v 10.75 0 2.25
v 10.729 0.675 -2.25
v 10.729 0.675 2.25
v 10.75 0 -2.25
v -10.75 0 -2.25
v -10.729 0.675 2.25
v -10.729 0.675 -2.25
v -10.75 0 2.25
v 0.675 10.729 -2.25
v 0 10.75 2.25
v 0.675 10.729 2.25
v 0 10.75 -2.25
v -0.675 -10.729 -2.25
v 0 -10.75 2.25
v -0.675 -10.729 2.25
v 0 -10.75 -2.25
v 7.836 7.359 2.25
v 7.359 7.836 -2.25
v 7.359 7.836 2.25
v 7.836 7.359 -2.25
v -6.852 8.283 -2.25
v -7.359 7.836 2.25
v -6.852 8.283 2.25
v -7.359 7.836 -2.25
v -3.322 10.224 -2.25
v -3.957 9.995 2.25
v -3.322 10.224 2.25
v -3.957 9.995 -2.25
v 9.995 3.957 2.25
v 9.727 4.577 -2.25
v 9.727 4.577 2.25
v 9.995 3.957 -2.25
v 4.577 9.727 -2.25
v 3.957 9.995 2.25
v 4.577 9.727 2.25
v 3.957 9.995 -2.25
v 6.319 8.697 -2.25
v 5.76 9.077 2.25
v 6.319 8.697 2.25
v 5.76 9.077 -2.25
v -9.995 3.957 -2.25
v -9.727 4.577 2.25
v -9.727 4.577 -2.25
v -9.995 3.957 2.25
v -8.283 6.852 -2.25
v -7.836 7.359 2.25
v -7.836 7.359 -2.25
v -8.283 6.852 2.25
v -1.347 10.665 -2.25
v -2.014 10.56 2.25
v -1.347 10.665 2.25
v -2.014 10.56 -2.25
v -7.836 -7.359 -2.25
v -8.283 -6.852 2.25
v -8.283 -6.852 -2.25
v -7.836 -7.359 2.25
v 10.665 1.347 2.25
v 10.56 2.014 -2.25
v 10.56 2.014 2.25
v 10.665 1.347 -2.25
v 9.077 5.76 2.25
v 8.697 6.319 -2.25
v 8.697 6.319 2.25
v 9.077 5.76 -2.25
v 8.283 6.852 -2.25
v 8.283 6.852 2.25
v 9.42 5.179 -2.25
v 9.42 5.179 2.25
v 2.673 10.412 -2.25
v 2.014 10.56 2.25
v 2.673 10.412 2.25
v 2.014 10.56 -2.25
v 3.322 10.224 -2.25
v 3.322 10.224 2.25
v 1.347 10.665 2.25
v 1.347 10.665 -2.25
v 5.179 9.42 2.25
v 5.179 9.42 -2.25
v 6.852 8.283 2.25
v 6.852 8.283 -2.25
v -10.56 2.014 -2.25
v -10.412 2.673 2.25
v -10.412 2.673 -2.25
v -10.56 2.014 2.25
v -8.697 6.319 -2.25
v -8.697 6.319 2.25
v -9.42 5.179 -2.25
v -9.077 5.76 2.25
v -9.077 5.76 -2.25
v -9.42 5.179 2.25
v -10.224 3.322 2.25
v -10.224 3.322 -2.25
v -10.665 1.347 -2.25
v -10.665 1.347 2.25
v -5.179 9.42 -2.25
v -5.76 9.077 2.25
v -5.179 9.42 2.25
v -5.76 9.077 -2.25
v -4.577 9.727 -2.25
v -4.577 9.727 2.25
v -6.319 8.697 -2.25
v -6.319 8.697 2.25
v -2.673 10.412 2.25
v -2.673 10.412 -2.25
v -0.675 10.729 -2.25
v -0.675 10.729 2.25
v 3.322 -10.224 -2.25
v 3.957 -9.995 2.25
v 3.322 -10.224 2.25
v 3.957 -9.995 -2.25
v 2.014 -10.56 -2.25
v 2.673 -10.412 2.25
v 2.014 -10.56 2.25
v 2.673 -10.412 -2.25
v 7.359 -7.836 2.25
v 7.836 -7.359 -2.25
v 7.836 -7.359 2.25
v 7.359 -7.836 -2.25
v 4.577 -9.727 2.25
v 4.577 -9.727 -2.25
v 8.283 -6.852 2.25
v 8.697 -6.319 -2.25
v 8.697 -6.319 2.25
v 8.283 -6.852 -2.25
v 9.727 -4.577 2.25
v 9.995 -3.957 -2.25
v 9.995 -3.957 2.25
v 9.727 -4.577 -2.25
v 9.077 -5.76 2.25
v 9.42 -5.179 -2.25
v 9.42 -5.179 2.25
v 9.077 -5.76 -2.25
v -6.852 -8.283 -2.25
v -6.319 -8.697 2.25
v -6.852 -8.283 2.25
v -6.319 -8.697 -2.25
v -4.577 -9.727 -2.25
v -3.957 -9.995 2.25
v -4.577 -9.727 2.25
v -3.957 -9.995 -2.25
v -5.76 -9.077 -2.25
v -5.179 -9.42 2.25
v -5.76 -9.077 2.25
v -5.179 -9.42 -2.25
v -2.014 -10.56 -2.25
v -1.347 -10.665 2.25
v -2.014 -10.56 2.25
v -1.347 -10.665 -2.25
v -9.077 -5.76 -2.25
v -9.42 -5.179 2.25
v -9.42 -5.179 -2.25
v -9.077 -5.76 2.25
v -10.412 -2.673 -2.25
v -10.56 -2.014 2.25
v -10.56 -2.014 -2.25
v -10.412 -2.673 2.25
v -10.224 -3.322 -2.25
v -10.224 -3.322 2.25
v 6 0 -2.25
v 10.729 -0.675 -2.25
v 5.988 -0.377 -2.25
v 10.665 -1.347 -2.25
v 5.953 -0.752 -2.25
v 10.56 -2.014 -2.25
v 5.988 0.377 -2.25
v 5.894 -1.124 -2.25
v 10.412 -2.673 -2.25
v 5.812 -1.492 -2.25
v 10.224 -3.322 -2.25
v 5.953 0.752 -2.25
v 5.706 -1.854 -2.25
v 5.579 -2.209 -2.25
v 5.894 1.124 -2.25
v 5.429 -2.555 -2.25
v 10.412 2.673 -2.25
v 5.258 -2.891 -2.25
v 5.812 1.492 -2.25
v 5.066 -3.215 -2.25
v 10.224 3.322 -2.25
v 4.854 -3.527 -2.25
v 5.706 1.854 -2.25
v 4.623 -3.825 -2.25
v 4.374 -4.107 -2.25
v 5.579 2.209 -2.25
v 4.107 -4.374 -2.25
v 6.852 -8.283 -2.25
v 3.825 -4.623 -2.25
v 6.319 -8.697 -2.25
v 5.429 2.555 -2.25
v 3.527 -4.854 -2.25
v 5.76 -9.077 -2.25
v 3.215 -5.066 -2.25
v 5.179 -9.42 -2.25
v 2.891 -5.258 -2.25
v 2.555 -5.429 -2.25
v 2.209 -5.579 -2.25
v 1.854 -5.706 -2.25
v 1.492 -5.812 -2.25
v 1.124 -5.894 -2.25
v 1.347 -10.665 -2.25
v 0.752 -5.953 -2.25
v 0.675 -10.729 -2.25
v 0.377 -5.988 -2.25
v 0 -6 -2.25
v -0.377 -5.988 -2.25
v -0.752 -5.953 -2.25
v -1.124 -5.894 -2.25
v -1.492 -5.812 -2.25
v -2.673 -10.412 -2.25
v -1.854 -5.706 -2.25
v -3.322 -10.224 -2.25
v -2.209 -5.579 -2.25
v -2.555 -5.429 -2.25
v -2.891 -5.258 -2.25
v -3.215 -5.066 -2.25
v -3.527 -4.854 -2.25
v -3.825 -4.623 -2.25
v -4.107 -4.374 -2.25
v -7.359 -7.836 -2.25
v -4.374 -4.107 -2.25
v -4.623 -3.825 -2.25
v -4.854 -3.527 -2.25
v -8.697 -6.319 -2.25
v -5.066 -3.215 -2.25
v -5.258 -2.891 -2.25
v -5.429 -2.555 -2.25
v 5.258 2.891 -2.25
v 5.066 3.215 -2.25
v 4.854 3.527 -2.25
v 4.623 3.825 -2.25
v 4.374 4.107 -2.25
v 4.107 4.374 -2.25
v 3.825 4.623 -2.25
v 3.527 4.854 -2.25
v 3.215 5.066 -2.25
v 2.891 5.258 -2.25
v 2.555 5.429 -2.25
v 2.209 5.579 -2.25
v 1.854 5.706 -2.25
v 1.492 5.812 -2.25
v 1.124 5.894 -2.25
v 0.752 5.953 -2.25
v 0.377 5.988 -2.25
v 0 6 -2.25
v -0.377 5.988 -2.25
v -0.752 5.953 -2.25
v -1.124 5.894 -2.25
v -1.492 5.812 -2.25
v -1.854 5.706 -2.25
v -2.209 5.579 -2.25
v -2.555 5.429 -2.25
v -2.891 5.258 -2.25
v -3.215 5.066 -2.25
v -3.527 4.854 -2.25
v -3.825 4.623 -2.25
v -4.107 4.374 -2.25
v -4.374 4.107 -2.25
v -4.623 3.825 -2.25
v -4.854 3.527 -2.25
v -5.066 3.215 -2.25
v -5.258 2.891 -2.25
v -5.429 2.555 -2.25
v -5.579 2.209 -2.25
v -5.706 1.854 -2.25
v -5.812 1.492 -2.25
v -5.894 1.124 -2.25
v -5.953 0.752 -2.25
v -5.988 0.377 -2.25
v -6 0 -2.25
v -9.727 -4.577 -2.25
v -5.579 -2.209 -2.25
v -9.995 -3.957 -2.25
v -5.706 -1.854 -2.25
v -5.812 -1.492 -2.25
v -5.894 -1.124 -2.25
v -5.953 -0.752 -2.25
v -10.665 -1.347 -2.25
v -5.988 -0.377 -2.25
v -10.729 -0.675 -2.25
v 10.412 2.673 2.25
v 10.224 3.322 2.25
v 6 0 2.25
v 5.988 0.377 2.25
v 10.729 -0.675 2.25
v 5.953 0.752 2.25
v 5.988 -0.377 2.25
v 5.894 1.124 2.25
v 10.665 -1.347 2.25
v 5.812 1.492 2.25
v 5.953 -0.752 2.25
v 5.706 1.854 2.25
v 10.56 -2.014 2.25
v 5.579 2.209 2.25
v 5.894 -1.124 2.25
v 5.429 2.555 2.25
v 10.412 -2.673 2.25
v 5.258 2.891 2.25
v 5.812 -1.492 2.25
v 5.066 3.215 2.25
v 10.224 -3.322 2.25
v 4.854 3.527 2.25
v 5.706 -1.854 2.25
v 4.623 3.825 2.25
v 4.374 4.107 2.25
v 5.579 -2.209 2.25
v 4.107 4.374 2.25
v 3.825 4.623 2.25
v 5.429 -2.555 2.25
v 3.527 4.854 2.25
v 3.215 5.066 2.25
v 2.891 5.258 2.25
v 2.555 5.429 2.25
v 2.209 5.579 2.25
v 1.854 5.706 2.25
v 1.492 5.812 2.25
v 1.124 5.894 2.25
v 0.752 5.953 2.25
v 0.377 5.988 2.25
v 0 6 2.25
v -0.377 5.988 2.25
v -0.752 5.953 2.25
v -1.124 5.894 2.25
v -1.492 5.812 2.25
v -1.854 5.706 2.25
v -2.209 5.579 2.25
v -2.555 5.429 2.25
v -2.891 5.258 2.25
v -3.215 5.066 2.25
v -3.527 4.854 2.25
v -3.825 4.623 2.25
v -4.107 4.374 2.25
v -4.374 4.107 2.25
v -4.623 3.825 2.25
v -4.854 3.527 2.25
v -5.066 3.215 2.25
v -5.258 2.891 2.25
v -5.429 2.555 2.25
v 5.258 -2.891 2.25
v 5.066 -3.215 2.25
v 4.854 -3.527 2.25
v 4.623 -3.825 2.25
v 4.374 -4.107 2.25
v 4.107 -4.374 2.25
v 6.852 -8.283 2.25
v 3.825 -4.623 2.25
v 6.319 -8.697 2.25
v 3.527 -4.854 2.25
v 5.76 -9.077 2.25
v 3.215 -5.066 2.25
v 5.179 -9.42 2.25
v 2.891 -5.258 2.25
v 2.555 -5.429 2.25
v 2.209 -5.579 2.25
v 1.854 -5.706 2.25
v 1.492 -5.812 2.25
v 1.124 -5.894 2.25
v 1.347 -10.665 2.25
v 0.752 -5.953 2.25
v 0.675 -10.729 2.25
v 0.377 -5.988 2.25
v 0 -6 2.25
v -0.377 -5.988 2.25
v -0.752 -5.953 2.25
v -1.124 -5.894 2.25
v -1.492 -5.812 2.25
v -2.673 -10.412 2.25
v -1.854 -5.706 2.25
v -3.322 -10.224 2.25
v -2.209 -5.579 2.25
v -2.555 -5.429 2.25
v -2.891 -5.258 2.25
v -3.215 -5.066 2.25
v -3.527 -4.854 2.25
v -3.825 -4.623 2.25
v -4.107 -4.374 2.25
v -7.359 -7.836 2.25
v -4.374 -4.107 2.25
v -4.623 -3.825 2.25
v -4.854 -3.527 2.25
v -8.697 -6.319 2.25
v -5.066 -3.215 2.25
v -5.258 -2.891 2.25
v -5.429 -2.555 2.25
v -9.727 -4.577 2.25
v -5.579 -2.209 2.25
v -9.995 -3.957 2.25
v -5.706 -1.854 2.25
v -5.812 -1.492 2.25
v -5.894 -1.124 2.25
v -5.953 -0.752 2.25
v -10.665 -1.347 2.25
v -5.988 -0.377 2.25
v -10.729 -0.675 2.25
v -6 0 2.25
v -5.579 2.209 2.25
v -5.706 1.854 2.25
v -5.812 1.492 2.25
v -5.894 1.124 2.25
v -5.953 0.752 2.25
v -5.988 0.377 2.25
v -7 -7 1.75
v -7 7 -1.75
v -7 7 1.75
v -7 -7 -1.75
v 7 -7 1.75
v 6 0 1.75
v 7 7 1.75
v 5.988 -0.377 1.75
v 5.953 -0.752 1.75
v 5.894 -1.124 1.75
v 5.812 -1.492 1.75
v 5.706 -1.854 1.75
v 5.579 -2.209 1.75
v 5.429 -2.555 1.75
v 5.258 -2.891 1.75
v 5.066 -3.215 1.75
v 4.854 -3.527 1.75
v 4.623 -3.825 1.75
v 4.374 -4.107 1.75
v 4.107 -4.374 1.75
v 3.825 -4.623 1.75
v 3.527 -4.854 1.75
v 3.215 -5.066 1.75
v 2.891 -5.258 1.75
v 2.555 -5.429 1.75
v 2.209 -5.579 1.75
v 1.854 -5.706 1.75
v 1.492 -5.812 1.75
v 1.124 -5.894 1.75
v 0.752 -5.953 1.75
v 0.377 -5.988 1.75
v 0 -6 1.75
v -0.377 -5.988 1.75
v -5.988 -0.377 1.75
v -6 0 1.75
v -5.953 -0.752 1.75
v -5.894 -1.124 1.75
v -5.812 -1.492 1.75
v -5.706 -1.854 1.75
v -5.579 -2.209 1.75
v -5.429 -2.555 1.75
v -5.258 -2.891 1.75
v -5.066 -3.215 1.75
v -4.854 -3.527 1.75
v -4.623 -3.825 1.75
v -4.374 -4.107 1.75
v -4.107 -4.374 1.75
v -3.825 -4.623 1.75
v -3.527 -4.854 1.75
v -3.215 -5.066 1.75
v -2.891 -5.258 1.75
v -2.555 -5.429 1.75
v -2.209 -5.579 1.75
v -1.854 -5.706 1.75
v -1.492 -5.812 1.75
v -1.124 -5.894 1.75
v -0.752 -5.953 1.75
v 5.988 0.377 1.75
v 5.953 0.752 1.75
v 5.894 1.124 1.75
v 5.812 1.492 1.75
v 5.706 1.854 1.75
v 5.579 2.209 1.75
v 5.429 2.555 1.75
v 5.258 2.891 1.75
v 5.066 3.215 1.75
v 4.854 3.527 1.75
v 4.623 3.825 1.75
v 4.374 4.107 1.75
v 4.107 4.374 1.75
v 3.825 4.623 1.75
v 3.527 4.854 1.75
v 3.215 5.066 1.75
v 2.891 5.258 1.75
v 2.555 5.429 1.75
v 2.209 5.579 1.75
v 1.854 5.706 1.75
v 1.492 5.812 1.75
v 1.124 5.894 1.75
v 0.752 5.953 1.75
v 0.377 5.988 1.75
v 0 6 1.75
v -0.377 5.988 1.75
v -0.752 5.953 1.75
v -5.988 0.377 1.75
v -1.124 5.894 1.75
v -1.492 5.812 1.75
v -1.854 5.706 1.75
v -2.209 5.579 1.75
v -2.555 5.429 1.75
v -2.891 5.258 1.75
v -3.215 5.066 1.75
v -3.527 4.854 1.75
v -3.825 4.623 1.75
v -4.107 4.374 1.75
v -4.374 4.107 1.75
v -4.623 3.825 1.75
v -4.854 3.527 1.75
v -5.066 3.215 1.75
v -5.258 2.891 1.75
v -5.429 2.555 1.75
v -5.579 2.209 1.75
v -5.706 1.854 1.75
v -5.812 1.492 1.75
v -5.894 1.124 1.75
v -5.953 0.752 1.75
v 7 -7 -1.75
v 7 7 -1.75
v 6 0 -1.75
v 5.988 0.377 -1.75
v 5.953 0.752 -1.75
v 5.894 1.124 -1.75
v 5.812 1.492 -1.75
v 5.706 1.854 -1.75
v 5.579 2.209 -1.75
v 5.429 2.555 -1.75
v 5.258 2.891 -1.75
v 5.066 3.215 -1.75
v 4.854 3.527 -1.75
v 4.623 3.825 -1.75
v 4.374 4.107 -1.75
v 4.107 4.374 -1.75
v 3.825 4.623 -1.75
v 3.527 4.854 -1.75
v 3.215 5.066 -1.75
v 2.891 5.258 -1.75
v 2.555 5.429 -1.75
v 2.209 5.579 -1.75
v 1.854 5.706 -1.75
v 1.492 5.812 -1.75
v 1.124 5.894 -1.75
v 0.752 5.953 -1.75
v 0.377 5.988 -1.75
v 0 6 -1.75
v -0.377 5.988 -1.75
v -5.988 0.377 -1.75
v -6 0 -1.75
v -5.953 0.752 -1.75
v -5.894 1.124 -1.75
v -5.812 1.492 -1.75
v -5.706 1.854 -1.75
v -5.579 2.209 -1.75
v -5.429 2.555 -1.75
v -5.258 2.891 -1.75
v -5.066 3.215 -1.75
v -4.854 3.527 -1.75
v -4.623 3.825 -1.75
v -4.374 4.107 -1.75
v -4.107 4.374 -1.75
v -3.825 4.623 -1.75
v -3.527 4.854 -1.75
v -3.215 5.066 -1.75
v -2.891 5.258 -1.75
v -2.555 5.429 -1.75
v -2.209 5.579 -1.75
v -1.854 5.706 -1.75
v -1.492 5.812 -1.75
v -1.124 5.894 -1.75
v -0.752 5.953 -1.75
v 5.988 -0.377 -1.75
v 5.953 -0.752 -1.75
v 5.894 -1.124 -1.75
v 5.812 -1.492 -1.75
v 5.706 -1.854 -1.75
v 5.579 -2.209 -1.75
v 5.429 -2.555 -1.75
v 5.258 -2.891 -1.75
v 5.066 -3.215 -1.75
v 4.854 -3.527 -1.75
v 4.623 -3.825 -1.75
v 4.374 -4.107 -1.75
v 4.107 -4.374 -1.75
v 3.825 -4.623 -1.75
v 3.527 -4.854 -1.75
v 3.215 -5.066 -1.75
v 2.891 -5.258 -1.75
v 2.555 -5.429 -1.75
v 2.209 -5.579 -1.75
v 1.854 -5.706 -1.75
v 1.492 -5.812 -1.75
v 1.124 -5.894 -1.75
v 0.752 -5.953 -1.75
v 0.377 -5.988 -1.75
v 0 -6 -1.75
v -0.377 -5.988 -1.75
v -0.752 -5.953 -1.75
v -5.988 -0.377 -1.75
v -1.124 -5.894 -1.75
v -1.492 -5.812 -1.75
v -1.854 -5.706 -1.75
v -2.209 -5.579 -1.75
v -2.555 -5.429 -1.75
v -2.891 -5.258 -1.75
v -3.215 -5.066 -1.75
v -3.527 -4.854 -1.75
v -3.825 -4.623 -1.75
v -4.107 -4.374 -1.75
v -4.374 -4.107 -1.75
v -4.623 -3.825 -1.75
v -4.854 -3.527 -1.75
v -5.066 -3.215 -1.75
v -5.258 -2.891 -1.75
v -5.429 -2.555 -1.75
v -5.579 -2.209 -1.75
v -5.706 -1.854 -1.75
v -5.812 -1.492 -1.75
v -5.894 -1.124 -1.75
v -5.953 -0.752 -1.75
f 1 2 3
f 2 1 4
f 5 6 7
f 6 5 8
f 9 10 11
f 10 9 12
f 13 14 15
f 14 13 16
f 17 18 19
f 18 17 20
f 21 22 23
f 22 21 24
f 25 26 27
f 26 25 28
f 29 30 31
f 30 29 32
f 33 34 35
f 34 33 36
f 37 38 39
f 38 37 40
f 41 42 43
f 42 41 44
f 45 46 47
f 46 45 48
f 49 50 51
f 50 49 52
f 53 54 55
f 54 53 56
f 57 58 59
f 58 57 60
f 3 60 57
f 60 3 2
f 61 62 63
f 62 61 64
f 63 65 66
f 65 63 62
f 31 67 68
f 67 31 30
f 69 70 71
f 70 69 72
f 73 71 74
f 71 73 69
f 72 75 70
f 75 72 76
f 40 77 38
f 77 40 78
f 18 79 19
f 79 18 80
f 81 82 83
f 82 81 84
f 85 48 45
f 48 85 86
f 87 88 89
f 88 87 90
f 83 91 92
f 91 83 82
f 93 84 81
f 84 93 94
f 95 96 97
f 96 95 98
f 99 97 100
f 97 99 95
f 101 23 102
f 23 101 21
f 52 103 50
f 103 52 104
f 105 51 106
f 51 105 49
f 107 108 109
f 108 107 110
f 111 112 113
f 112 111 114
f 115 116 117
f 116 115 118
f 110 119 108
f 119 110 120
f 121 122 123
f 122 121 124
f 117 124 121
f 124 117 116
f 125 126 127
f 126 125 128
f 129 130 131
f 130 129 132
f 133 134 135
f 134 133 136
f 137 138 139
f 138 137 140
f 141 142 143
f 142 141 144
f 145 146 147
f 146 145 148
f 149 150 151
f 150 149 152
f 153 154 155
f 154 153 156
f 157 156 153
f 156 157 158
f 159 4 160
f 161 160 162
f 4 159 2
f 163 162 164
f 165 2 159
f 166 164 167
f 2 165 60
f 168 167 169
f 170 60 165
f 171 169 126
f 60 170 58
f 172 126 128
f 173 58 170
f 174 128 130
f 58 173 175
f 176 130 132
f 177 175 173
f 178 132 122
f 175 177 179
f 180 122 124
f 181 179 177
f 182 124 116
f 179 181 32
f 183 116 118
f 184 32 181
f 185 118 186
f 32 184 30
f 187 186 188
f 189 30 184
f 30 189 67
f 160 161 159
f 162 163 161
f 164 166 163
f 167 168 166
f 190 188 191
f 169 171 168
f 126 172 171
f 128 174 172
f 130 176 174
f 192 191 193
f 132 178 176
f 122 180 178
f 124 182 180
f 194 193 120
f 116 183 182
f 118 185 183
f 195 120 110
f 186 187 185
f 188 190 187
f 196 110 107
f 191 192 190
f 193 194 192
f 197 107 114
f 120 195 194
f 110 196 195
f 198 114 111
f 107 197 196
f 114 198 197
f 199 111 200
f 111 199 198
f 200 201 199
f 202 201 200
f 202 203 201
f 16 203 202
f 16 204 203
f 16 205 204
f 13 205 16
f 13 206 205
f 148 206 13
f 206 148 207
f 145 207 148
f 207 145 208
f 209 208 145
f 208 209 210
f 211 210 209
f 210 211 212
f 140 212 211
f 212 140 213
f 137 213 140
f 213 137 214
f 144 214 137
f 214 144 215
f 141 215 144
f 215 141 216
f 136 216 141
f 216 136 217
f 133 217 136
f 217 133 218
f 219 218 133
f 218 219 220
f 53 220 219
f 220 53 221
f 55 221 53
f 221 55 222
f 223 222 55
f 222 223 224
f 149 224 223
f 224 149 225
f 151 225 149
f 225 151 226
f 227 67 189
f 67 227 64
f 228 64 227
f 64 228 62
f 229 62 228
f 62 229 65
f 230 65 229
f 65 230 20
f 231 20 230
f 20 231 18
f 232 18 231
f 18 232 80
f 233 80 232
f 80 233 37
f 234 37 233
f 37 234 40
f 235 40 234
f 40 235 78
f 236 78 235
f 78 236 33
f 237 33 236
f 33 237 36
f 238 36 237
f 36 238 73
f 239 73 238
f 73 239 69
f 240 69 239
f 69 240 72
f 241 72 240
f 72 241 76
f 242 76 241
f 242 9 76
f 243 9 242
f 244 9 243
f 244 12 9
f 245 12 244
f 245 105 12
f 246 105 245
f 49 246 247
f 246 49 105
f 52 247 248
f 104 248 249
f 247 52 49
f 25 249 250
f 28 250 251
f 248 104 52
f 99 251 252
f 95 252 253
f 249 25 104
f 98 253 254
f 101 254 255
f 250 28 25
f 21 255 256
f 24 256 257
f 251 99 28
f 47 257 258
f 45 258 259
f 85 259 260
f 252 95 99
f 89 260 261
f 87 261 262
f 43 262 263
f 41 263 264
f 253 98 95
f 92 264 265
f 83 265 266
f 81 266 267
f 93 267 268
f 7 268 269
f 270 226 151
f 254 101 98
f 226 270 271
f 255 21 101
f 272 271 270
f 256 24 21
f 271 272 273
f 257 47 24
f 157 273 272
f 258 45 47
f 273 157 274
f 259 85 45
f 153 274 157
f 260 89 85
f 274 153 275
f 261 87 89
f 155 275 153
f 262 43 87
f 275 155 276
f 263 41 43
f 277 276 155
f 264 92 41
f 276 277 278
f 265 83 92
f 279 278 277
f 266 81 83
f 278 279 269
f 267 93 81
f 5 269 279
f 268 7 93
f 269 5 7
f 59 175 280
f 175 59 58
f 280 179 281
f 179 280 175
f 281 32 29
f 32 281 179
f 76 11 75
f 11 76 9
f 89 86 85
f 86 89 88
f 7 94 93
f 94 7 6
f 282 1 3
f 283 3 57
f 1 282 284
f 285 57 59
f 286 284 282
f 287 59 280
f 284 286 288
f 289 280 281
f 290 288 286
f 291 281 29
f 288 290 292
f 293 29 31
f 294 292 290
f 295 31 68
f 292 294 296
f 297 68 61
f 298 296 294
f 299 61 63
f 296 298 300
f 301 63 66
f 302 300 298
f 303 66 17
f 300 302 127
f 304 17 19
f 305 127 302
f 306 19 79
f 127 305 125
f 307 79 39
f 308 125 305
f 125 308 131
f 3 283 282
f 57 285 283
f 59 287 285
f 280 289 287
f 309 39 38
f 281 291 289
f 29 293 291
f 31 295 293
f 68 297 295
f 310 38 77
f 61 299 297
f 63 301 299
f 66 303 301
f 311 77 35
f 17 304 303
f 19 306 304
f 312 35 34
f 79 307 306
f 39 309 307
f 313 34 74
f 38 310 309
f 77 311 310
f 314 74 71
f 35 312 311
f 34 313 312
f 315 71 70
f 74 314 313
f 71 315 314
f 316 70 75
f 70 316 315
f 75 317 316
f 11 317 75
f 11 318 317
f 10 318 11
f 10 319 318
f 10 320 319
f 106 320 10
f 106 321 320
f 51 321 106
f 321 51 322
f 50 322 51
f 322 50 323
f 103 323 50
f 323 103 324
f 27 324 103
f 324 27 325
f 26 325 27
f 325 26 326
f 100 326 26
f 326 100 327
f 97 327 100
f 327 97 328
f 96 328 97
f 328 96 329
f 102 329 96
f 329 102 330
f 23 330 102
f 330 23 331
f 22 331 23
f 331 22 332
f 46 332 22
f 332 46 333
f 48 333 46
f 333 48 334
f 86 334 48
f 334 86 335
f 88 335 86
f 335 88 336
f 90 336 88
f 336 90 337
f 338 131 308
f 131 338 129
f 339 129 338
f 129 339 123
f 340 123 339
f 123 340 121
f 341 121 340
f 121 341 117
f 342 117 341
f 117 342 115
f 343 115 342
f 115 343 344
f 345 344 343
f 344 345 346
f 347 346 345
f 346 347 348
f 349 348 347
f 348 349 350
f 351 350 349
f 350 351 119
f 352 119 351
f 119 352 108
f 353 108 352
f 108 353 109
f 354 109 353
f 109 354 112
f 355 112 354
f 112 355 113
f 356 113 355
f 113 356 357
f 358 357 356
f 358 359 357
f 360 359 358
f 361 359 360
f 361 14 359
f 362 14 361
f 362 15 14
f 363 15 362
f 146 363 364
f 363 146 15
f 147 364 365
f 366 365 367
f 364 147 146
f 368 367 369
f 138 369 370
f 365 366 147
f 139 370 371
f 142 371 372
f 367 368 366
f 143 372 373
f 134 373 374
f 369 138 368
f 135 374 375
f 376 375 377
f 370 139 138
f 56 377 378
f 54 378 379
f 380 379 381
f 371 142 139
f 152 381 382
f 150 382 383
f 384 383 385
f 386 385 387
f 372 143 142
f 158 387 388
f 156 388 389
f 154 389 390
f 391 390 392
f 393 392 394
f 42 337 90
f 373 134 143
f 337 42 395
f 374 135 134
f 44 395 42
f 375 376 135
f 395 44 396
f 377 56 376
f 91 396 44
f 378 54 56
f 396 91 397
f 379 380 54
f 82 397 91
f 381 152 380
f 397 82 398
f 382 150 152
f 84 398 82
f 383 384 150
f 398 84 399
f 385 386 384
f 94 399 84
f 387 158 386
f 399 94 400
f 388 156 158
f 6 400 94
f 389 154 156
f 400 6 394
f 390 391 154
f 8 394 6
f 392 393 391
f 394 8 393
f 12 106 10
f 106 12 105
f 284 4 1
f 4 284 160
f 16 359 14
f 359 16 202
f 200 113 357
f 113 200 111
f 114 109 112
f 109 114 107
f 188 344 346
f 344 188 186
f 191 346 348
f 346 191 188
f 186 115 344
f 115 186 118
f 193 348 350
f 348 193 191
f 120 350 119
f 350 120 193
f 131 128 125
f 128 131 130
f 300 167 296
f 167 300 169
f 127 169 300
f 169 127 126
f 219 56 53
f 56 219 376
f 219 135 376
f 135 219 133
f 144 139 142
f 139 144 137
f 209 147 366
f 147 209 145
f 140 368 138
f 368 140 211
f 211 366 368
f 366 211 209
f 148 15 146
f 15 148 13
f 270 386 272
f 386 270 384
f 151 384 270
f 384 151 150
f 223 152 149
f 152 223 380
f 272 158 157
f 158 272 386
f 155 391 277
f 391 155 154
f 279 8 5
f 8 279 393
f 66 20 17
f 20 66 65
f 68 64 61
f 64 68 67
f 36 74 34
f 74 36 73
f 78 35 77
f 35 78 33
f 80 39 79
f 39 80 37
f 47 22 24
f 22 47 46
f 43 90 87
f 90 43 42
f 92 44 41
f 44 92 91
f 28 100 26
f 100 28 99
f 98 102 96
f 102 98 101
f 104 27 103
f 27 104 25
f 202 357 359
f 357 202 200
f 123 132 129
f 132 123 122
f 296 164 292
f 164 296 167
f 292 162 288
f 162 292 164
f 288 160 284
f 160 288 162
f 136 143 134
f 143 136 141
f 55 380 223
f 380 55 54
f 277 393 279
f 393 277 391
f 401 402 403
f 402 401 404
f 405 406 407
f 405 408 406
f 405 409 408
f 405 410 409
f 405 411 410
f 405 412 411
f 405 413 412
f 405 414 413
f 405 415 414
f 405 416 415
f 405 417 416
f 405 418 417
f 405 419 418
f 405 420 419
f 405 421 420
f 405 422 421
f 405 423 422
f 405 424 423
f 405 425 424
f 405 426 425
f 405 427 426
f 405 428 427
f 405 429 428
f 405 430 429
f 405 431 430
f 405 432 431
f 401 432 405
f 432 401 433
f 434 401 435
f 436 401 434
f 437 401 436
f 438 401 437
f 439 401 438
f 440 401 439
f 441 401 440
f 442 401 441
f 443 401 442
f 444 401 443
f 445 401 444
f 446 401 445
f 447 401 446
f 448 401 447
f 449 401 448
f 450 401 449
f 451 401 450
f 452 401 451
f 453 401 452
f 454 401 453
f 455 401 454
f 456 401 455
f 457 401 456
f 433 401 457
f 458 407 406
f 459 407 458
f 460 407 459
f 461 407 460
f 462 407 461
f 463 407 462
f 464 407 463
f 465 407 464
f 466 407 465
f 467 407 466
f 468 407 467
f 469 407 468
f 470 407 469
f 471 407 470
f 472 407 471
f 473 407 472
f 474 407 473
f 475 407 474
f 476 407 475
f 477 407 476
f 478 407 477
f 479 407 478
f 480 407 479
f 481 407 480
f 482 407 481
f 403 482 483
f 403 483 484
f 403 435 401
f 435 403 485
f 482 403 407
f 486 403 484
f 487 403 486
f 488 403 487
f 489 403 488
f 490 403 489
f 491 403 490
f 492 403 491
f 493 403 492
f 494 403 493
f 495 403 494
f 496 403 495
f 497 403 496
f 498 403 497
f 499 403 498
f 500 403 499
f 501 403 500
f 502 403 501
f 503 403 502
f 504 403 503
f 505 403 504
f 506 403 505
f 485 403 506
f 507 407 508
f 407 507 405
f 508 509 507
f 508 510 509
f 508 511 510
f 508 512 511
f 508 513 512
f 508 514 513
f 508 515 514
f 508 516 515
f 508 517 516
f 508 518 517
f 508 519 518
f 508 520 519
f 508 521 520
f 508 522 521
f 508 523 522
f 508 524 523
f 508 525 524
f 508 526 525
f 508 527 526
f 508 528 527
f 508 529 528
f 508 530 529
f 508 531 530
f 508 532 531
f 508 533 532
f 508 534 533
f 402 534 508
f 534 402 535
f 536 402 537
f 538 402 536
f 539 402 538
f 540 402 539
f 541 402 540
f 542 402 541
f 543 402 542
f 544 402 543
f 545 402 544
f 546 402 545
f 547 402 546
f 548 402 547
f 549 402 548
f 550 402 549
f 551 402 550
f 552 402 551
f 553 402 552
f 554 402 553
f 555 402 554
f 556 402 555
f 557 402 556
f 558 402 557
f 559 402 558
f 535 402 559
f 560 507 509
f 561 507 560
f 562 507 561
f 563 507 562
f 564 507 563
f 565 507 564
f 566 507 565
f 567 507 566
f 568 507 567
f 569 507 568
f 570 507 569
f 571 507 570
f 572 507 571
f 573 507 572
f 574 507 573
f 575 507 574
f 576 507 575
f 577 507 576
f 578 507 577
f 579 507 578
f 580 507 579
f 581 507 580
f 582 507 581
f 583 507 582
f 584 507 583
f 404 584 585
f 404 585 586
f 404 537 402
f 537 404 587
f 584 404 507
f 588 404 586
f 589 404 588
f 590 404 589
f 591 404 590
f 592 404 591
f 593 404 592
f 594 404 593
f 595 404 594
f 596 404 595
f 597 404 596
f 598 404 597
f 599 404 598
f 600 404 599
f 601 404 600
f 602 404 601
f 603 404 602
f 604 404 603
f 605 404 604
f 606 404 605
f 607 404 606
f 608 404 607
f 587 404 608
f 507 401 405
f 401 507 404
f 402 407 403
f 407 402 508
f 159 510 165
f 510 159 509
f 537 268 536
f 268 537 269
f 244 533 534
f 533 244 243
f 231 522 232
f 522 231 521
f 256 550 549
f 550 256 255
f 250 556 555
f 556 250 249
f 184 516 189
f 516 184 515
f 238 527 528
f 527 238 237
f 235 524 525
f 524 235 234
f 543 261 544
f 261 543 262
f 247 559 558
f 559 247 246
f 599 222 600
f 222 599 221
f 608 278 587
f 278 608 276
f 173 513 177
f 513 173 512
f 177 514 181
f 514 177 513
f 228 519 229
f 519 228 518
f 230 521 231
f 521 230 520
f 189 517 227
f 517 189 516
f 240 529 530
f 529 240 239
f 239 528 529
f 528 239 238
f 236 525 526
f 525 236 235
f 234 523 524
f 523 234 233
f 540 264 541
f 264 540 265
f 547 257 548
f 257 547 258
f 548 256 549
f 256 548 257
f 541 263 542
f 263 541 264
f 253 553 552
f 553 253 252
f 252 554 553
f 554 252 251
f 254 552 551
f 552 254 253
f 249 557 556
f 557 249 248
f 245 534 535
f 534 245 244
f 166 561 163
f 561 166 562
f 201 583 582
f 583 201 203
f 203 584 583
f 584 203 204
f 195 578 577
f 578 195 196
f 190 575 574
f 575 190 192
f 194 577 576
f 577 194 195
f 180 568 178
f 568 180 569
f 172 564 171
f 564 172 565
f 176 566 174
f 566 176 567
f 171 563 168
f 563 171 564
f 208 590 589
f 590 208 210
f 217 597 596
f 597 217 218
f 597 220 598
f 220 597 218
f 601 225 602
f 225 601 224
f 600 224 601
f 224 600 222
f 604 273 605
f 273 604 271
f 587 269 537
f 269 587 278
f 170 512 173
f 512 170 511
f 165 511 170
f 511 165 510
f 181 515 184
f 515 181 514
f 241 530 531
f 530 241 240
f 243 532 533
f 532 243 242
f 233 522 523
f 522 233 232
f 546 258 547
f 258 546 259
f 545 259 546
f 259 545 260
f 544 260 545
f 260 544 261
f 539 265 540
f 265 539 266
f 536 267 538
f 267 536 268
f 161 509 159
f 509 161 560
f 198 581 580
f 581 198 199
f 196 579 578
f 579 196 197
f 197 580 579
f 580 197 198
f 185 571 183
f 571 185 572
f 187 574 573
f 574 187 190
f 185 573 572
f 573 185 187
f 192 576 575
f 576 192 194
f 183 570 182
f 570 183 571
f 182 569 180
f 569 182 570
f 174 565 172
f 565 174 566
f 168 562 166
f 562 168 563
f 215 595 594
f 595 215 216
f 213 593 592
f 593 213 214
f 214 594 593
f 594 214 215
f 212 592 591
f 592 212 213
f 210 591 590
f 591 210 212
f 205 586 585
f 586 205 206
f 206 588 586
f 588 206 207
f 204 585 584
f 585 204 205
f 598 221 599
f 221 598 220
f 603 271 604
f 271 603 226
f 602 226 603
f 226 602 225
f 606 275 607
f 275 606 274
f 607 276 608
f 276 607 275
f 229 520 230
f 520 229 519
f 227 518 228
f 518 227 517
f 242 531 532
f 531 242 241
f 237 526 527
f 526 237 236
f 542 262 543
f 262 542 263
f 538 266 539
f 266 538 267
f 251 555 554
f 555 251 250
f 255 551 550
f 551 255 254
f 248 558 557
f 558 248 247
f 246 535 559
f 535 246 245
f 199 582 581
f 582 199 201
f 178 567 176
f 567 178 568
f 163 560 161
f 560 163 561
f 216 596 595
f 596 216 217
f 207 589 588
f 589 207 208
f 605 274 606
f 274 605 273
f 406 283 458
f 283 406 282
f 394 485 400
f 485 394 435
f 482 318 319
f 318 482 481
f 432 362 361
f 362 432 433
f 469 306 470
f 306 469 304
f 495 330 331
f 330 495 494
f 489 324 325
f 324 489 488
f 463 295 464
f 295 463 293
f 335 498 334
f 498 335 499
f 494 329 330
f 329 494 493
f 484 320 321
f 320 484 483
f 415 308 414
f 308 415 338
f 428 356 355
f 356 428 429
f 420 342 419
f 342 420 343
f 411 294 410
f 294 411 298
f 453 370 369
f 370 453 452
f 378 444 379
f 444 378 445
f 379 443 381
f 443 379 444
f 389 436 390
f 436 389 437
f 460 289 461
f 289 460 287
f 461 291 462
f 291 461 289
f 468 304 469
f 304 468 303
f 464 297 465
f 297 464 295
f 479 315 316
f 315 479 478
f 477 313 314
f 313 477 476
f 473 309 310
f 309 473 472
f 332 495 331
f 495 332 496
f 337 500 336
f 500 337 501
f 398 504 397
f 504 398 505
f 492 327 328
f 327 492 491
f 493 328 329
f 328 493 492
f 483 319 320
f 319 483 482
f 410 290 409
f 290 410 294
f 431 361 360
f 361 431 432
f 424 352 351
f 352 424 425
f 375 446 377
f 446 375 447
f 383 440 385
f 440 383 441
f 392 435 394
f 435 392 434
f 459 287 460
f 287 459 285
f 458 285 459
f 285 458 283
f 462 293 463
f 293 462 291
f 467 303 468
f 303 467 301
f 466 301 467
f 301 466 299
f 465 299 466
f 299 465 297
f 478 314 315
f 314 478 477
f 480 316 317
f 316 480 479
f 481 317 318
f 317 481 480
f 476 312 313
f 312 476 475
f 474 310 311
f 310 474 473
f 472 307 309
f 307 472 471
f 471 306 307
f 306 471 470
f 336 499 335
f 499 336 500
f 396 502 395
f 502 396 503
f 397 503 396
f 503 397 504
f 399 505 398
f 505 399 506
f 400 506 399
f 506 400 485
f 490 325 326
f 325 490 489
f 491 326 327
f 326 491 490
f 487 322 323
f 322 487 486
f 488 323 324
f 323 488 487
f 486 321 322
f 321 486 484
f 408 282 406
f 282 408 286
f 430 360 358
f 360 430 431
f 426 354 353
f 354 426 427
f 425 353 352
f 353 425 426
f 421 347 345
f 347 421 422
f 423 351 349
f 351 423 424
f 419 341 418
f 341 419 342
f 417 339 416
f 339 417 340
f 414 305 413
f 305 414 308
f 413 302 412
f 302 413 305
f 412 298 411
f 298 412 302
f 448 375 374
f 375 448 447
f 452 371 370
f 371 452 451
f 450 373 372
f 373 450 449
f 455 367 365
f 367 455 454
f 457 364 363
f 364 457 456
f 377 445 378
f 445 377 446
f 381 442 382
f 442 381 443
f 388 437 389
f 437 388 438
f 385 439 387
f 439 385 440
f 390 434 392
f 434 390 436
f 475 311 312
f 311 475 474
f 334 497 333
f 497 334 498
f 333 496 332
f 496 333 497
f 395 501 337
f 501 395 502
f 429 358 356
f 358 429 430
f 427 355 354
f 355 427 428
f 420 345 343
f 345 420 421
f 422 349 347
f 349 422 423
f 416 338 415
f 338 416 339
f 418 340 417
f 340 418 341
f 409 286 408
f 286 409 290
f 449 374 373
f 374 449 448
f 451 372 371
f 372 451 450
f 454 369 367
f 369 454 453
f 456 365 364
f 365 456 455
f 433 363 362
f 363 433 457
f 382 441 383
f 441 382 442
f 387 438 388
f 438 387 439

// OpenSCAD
/*

Object Name: Battery Spacer (OpenSCAD)
Author: Brian Khuu 2021

Attempt at a battery spacer. Did not quite work out.

*/

module spacerHex()
{
    difference()
    {
        cylinder(d=22-0.5, h=4.5, $fn = 100, center=true);
        cylinder(d=15, h=5, $fn = 6, center=true);
    }
}


module spacerFoil()
{
    spacerH = 4.5;
    spacerR = 22-0.5;
    spacerInner = 14;
    spacerTopHoleDia = 12;
    spacerBottomHoleDia = 12;
    spacerThickness = 0.5;
    
    
    foilThickness = 0.02;
    
    innerH = spacerH-2*spacerThickness;
    foilLayerCountReq = innerH/foilThickness;

    difference()
    {
        cylinder(d=spacerR, h=spacerH, $fn = 100, center=true);
        
        // Internal Foil
        cube([spacerInner,spacerInner,innerH], center=true);
        
        // BottomHole
        translate([0,0,-2])
            cylinder(d=spacerTopHoleDia, h=2, $fn = 100, center=true);
        
        // Top Hole
        translate([0,0,spacerH-2])
            cylinder(d=spacerBottomHoleDia, h=2, $fn = 100, center=true);
    }
    
    echo("pause layer at", spacerH-spacerThickness, "mm");
    echo("innerH ", innerH);
    echo("req ", foilLayerCountReq , " x foil layer");
}

spacerFoil();
